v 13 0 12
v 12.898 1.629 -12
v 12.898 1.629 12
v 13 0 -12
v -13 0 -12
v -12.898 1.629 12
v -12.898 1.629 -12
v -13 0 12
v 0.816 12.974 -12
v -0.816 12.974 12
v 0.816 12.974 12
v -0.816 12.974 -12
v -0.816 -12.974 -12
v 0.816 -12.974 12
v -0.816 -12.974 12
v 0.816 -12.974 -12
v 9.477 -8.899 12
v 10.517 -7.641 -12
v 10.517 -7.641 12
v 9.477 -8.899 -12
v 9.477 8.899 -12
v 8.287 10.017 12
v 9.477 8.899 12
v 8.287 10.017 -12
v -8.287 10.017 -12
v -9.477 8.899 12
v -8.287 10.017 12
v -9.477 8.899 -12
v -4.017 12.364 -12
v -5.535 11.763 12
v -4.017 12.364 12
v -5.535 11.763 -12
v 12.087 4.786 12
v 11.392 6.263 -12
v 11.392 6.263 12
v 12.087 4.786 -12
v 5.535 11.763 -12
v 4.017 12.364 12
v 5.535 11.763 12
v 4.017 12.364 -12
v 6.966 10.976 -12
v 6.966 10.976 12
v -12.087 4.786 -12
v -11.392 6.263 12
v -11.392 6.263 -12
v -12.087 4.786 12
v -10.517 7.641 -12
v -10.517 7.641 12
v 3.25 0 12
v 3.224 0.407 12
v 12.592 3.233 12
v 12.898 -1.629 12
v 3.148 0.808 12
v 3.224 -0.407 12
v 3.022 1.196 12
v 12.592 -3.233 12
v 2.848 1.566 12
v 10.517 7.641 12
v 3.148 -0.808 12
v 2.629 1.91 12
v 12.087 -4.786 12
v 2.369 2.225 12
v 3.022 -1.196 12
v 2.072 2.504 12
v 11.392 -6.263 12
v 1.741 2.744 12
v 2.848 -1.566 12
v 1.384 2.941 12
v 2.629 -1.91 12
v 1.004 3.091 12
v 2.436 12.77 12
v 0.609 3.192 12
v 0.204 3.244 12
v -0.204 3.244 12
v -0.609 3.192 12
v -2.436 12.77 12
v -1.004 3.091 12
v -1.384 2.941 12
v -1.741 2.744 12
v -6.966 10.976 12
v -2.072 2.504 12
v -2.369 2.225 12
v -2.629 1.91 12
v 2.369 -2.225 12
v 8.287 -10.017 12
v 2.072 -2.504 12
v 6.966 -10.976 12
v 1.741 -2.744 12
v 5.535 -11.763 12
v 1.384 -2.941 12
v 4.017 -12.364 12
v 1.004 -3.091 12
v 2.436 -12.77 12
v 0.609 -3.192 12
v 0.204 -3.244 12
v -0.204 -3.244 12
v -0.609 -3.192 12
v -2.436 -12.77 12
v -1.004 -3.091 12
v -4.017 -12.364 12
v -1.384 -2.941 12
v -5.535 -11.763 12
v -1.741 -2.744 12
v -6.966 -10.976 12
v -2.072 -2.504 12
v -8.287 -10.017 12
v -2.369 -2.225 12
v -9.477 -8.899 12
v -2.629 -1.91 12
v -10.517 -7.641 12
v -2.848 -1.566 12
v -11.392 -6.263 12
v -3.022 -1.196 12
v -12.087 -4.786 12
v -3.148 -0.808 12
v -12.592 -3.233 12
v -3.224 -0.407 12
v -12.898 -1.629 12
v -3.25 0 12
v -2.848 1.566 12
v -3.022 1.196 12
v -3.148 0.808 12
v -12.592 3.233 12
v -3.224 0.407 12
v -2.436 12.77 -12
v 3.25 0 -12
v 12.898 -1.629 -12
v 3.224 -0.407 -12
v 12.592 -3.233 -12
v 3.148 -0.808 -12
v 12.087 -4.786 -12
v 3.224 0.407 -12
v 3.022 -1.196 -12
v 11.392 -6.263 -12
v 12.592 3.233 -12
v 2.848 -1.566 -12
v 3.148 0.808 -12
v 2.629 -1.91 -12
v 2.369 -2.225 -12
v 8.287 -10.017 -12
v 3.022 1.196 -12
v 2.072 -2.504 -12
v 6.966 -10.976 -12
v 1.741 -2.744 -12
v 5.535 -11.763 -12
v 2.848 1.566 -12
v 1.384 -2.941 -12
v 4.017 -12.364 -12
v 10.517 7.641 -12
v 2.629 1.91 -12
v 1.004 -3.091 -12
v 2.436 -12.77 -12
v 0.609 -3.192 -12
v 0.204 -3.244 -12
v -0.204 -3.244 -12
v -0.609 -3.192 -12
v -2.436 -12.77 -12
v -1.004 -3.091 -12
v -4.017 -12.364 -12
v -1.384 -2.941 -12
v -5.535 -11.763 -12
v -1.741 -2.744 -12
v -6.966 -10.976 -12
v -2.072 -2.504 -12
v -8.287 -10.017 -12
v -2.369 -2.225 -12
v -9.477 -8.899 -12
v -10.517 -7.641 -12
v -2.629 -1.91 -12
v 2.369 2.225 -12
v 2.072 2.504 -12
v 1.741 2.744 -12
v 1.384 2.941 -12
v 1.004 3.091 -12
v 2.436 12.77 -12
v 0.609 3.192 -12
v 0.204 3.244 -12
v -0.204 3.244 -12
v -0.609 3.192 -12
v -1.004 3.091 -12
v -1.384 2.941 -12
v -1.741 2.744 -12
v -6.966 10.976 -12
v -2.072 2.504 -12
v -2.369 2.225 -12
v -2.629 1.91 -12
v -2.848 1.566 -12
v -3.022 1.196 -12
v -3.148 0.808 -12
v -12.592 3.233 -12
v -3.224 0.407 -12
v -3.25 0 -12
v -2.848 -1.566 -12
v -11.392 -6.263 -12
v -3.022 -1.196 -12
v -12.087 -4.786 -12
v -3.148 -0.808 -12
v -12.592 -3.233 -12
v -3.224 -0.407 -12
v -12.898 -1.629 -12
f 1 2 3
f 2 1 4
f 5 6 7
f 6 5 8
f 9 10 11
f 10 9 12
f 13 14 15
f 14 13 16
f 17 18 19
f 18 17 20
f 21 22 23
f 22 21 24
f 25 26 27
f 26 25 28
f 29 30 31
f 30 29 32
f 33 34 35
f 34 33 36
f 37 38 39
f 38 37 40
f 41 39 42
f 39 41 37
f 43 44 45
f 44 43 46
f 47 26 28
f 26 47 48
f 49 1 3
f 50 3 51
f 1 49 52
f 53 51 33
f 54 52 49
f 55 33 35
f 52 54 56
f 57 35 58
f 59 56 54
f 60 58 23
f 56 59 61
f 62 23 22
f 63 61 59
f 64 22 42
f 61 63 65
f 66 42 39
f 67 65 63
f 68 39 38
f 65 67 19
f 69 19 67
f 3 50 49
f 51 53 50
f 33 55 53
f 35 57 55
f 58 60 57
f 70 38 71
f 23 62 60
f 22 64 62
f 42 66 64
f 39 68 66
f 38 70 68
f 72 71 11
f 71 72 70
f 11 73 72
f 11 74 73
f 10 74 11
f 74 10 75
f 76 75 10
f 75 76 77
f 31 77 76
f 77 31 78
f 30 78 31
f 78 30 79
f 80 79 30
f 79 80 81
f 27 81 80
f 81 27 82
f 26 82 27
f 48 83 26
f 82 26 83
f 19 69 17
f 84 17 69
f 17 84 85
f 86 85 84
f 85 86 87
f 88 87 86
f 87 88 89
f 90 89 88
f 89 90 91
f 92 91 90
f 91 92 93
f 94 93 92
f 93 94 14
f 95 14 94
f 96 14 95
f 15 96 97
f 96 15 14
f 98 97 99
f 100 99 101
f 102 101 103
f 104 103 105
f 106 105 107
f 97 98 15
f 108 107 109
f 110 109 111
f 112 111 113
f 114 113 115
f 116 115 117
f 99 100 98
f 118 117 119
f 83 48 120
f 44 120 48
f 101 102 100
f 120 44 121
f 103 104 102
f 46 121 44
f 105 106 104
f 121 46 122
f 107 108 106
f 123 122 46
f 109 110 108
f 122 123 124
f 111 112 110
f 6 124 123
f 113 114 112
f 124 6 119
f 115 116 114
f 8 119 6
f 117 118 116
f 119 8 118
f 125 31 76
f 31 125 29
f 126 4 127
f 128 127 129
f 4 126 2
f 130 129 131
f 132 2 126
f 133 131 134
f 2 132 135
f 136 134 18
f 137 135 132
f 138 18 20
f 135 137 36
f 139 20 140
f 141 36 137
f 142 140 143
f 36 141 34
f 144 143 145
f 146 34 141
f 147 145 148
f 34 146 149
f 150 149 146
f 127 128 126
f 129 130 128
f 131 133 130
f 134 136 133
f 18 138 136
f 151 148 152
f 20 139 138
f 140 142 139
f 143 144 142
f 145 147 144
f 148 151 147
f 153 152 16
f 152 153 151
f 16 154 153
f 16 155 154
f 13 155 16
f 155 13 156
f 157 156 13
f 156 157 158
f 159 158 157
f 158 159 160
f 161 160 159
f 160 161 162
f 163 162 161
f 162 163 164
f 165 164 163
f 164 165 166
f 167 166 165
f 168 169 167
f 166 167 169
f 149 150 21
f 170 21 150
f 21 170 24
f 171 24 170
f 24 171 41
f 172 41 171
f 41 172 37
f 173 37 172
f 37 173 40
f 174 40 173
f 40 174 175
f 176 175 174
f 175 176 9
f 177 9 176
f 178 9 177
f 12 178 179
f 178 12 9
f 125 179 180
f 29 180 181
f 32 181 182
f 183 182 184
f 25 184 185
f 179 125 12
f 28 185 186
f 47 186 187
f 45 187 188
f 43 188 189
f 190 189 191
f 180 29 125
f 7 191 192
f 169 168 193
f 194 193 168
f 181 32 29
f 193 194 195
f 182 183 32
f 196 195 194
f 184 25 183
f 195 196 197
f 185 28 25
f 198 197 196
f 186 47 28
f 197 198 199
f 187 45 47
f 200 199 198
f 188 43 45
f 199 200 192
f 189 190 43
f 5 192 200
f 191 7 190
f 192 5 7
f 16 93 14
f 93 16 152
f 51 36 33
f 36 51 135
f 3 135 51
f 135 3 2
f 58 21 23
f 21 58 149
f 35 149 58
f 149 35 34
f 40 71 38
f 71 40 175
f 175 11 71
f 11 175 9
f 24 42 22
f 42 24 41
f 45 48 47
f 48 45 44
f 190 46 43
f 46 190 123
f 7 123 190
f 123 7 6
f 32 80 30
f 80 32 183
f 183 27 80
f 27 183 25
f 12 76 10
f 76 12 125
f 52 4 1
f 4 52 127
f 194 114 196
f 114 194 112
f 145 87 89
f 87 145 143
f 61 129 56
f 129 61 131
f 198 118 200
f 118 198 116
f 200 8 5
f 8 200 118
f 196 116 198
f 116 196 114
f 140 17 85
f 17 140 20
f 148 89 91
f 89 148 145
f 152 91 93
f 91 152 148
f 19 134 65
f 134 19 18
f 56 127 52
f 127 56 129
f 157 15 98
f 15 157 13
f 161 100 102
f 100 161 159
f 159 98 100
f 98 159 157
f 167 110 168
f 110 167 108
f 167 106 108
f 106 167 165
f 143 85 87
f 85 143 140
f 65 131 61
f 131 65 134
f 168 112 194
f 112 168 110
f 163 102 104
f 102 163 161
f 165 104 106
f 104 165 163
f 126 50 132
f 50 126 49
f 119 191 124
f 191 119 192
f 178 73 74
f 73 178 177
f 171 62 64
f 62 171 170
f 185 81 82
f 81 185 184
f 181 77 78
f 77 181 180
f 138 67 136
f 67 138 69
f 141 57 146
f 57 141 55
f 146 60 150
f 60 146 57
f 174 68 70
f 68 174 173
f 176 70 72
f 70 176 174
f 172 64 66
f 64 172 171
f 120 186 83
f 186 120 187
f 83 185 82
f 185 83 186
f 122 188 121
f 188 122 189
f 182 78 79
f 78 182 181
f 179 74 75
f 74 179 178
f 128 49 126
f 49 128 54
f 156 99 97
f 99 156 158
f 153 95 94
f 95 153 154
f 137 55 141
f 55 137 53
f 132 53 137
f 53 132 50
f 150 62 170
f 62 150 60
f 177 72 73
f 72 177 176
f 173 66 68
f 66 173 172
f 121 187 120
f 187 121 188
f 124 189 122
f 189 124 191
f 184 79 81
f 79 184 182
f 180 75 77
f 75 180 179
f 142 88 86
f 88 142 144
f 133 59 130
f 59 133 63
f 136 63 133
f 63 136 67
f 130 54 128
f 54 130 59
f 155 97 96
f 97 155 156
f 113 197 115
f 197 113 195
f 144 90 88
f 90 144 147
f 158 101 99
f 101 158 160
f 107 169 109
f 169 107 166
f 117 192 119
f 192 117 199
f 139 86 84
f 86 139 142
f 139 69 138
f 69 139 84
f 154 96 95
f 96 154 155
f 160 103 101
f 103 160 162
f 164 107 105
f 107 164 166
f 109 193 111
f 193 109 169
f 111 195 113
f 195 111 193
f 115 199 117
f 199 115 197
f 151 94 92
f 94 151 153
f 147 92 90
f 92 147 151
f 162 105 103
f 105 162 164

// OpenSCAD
$fn = 50;


difference() {
	union() {
		translate(v = [0, 0, -12.0000000000]) {
			cylinder(h = 24, r = 13.0000000000);
		}
	}
	union() {
		translate(v = [0, 0, -100.0000000000]) {
			cylinder(h = 200, r = 3.2500000000);
		}
	}
}
